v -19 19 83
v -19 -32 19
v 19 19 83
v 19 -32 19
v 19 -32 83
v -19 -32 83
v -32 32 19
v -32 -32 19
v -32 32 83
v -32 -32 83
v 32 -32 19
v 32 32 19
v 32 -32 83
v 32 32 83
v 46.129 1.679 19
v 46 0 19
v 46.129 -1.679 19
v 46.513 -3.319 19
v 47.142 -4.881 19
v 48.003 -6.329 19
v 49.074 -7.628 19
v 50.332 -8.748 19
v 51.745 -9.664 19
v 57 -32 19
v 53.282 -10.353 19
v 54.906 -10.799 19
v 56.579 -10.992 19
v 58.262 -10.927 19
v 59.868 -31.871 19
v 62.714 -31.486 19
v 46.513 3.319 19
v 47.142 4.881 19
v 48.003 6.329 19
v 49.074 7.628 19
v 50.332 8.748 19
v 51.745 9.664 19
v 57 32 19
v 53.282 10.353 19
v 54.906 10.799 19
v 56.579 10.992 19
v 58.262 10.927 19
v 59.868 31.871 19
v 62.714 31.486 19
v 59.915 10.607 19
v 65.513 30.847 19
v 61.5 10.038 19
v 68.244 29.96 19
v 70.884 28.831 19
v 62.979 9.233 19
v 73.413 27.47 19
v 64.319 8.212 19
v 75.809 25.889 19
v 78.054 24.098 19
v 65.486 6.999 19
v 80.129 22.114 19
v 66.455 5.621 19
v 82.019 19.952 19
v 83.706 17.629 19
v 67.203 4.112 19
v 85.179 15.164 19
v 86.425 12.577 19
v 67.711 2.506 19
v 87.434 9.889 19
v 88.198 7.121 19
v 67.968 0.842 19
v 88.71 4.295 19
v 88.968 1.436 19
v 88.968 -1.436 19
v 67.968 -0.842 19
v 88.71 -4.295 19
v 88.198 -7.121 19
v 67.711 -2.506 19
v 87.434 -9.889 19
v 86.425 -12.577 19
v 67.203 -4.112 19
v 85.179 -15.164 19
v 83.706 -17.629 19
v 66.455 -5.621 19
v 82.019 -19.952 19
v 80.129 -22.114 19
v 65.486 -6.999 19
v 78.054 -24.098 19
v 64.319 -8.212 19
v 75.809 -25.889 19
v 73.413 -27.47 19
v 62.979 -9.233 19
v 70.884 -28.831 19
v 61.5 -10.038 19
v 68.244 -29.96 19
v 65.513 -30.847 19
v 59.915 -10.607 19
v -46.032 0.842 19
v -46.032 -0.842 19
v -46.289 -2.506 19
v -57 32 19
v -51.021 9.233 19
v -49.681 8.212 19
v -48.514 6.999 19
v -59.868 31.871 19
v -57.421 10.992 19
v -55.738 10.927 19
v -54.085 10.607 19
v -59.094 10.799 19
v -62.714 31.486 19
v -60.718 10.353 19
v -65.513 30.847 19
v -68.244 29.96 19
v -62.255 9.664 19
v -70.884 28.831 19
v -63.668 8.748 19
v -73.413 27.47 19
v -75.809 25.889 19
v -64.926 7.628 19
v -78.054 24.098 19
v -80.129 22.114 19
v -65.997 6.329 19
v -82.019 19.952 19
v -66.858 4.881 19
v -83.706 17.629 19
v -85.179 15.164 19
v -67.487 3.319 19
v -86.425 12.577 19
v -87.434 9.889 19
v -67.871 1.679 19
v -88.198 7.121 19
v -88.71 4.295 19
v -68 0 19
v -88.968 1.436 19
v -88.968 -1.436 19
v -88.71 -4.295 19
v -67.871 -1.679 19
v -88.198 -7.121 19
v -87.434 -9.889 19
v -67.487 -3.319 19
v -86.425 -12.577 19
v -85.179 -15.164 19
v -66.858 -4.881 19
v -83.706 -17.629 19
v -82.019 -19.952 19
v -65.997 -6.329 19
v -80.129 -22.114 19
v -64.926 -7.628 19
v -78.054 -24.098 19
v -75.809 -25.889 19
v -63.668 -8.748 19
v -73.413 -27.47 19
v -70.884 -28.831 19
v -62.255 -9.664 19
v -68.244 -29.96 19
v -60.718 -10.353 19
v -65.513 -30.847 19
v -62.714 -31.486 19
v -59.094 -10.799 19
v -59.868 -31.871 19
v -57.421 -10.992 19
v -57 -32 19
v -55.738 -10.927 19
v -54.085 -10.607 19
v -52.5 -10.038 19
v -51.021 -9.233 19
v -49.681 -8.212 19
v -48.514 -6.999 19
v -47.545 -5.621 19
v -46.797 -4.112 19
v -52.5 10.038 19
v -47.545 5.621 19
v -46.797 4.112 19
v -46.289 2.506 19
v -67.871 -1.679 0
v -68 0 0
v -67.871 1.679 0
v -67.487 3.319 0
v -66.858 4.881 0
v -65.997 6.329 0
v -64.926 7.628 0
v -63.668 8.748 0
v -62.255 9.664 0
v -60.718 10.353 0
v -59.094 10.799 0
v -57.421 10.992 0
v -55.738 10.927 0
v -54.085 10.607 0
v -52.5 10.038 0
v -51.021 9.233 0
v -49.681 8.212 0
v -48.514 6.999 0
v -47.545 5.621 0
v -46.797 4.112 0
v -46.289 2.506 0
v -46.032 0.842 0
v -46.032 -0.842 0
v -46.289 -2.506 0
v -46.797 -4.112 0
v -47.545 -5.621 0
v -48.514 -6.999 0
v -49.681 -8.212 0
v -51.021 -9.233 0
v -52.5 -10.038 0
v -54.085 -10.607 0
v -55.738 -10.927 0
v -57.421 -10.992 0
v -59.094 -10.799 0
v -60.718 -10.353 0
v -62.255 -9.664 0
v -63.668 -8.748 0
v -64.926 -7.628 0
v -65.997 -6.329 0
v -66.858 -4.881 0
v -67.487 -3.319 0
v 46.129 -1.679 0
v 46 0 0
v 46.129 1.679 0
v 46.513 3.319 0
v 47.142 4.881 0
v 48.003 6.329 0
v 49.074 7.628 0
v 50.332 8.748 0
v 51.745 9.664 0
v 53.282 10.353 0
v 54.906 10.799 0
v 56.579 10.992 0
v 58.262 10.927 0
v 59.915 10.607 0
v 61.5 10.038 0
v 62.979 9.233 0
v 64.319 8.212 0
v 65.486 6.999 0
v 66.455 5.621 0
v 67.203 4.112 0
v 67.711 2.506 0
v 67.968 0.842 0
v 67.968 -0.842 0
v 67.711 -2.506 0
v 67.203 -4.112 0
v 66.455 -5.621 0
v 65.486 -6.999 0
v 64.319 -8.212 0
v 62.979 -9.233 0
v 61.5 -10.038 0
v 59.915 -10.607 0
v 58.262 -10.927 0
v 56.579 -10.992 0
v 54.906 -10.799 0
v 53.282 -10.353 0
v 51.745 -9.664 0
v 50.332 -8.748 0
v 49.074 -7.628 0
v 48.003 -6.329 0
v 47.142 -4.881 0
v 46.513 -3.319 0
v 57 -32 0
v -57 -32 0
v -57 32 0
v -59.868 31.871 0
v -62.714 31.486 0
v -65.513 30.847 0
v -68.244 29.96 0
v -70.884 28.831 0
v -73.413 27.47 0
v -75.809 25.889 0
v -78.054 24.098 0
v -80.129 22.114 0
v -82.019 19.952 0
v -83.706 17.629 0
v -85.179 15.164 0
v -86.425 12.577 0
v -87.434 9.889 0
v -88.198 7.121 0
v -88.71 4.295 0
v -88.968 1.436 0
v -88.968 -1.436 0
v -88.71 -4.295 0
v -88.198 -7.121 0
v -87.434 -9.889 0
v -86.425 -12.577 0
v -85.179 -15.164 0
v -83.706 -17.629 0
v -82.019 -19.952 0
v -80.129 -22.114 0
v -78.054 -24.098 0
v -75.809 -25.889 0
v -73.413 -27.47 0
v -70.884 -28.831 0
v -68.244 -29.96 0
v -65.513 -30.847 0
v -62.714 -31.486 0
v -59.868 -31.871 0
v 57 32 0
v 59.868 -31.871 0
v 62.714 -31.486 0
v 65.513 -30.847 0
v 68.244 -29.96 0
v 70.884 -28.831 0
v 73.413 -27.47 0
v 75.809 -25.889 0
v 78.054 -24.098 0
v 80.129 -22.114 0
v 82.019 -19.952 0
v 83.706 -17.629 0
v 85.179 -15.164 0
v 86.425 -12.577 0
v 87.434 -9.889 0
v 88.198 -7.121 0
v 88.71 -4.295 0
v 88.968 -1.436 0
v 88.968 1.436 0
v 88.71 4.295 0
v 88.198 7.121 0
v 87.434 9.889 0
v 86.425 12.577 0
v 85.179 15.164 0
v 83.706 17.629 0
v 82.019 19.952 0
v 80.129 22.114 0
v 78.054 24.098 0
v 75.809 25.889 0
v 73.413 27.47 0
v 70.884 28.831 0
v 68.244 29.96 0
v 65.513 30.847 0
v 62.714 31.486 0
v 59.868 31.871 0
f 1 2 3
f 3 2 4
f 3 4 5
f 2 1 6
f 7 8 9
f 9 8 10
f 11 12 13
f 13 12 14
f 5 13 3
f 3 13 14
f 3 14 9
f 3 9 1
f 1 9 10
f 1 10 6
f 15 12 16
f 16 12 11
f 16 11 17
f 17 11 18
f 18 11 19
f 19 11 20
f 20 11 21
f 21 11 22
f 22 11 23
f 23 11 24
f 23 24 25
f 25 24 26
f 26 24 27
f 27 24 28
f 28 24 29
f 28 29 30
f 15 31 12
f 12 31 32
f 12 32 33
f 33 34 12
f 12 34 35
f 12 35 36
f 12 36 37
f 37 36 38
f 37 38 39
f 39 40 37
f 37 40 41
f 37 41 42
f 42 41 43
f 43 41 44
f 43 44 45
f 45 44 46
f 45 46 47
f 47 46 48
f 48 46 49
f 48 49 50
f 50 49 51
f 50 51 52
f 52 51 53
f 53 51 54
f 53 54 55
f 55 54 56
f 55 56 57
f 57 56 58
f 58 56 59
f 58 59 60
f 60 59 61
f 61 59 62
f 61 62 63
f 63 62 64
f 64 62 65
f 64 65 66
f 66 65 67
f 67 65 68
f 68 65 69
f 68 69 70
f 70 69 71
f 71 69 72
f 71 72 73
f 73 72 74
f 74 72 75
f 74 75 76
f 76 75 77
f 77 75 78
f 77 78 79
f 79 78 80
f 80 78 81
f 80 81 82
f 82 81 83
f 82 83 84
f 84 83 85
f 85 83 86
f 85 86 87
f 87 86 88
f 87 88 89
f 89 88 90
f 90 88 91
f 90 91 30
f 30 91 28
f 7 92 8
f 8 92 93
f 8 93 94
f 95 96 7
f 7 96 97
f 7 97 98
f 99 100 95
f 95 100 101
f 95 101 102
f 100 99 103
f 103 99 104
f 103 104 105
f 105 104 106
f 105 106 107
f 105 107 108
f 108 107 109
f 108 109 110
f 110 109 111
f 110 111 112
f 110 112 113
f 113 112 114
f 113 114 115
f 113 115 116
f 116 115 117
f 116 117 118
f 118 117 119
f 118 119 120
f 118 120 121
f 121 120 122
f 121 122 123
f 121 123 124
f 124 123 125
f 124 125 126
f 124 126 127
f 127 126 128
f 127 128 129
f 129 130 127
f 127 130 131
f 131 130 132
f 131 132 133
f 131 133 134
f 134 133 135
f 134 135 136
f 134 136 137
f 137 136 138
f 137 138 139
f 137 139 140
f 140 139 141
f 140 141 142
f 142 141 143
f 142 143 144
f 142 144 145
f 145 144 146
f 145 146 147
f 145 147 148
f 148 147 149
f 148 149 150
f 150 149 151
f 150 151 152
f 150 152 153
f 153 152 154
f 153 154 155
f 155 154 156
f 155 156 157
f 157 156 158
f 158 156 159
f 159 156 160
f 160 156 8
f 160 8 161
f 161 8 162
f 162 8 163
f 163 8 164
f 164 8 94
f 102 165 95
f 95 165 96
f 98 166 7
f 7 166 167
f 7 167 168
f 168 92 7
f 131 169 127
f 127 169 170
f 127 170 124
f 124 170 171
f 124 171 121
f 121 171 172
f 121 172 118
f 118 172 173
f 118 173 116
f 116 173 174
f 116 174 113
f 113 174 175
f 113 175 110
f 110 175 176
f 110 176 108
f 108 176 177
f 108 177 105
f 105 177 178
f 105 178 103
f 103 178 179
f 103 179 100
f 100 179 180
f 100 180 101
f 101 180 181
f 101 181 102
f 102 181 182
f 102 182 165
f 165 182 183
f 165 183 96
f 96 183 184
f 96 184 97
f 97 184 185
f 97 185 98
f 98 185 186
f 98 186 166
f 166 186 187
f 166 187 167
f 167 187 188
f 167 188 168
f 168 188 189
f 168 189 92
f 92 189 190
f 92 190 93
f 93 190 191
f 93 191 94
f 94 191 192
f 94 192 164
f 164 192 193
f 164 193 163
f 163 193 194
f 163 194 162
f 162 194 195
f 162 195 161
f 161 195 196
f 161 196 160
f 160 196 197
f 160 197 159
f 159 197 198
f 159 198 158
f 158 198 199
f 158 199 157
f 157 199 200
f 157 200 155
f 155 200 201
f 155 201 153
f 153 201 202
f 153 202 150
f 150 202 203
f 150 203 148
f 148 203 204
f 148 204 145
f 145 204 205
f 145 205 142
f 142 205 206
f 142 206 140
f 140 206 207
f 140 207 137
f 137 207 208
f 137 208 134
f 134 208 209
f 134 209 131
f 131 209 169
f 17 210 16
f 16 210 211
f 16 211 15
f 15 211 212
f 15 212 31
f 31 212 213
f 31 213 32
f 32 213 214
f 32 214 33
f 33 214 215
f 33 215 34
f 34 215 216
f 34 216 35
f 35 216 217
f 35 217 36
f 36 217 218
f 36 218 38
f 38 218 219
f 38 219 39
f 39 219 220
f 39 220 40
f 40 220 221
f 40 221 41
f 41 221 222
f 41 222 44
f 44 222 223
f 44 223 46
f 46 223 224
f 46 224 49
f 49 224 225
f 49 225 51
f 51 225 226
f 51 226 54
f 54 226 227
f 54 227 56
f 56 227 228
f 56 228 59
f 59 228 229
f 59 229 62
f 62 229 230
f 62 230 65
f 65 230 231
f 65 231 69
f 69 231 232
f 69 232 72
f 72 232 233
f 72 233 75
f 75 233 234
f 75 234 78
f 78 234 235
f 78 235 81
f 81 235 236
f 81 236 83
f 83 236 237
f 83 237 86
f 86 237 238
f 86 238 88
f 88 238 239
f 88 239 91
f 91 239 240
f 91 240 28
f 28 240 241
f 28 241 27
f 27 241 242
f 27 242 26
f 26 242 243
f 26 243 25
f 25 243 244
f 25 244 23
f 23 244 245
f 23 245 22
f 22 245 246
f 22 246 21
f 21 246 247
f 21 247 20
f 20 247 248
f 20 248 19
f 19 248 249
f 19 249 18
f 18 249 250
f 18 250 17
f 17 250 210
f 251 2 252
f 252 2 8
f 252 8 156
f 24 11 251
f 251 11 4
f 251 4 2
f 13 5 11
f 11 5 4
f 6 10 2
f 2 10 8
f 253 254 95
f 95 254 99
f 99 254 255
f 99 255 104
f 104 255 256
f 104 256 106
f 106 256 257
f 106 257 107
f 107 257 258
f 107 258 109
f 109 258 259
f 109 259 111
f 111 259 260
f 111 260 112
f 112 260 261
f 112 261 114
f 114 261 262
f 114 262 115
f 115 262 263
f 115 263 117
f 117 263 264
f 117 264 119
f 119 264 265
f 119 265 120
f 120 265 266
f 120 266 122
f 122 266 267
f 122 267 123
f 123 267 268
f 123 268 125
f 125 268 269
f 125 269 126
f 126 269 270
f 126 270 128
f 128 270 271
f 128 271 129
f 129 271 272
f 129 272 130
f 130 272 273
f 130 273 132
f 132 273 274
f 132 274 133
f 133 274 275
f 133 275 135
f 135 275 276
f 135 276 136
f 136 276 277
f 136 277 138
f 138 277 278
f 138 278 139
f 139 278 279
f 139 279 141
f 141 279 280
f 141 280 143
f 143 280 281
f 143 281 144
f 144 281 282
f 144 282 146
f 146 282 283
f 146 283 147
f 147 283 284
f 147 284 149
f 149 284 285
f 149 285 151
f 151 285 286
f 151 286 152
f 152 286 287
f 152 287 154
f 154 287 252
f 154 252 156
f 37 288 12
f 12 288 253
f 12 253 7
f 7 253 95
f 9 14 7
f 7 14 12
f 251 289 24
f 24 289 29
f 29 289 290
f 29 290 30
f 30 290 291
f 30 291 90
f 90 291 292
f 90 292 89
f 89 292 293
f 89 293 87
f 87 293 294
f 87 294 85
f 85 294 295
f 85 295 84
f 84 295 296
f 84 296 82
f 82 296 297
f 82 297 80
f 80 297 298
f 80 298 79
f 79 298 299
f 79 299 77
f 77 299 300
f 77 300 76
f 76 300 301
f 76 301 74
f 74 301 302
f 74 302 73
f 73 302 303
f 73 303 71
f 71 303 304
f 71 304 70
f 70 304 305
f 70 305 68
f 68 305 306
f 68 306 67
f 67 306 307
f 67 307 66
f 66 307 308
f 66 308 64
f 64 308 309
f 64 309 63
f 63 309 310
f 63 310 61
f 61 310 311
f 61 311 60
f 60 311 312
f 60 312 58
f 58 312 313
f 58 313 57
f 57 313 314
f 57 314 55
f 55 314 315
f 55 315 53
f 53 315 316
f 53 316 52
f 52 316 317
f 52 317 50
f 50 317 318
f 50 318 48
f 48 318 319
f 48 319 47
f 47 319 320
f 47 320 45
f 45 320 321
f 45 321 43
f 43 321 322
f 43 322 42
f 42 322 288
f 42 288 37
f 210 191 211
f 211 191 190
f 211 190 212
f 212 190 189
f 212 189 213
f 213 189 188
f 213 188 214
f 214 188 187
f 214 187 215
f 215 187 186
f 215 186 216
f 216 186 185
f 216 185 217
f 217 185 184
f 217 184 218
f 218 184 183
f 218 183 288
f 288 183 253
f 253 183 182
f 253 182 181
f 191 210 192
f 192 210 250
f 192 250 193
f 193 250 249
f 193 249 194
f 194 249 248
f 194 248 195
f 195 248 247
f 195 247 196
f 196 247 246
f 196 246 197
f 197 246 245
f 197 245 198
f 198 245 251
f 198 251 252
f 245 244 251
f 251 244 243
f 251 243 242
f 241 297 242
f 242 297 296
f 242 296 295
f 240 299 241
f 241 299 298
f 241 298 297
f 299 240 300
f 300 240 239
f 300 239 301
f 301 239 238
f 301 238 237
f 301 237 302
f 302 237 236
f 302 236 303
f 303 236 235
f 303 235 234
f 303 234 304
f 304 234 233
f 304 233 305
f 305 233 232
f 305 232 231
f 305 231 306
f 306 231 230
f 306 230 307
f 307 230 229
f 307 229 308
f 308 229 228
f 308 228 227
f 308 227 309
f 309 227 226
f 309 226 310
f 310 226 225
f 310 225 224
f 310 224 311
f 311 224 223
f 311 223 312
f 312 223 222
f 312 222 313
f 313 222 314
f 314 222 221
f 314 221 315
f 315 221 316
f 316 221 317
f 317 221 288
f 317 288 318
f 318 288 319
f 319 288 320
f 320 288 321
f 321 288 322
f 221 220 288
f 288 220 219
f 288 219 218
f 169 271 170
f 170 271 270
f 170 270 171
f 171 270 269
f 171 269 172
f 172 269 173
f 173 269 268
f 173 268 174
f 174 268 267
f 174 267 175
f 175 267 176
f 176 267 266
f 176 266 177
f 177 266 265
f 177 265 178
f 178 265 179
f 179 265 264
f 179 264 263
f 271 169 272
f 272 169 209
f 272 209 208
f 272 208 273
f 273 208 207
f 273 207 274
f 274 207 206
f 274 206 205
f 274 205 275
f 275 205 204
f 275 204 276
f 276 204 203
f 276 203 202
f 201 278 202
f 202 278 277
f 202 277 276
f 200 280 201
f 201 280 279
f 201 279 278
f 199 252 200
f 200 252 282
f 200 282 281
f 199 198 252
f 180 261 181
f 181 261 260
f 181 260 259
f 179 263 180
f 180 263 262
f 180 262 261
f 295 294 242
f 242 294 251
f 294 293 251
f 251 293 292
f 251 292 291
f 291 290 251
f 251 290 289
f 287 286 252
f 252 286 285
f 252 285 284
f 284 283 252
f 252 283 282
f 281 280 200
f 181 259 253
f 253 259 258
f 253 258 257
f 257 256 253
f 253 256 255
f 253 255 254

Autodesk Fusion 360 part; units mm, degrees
sketch "Sketch1" plane through (0, 0, 0) normal (0, 0, 1) x (1, 0, 0)
  line L0 (57, 32) -> (-57, 32)
  line L1 (-57, 32) -> (-57, -32)
  line L2 (-57, -32) -> (57, -32)
  line L3 (57, -32) -> (57, 32)
  line L4 (57, 32) -> (-57, -32) construction
  line L5 (-57, 32) -> (57, -32) construction
  circle A0 centre (-57, 0) radius 11
  circle A1 centre (-57, 0) radius 32
  circle A2 centre (57, 0) radius 11
  circle A3 centre (57, 0) radius 32
  dimension "d1" = 114
  dimension "d2" = 64
  dimension "d3" = 22
  dimension "d4" = 32
  dimension "d5" = 22
  dimension "d7" = 32
extrude "Extrude1" add sketch "Sketch1" along normal blind 19 contours L0 L2 A1 A3 | L3 A2 A3 | L3 A2 A3 | L1 A0 A1 | L1 A0 A1
sketch "Sketch2" plane through (0, 0, 19) normal (0, 0, 1) x (-1, 0, 0)
  circle A0 centre (-57, 0) radius 11
  circle A1 centre (57, 0) radius 11
  arc A2 (-57, 32) -> (-57, -32) centre (-57, 0) ccw
  line L0 (-57, -32) -> (57, -32)
  arc A3 (57, -32) -> (57, 32) centre (57, 0) ccw
  line L1 (57, 32) -> (-57, 32)
  line L2 (-32, -32) -> (32, -32)
  line L3 (32, -32) -> (32, 32)
  line L4 (32, 32) -> (-32, 32)
  line L5 (-32, 32) -> (-32, -32)
  line L6 (-32, -32) -> (32, 32) construction
  line L7 (32, -32) -> (-32, 32) construction
  line L8 (19, 32) -> (-19, 32)
  line L9 (-19, 32) -> (-19, -19)
  line L10 (-19, -19) -> (19, -19)
  line L11 (19, -19) -> (19, 32)
  dimension "d10" = 64
  dimension "d11" = 64
  dimension "d12" = 38
  dimension "d13" = 51
  dimension "d14" = 13
  dimension "d15" = 13
extrude "Extrude2" add sketch "Sketch2" along normal blind 64 contours L0 L1 L2 L3 L4 L5 L9 L10 L11
sketch "Sketch3" plane through (19, 0, 0) normal (-1, 0, 0) x (0, -1, 0)
  line L0 (-19, 19) -> (32, 19)
  line L1 (32, 19) -> (32, 83)
  line L2 (32, 83) -> (-19, 83)
  line L3 (-19, 83) -> (-19, 19)
  line L4 (32, 19) -> (-19, 83)
  line L5 (-19, 19) -> (32, 19)
  line L6 (-19, 19) -> (-19, 83)
extrude "Extrude3" add sketch "Sketch3" along normal blind 40 contours L0 L3 L4 L5 L6
equation "d14 = ( ( 64 - 38 ) / 2 ) * 1 mm"
